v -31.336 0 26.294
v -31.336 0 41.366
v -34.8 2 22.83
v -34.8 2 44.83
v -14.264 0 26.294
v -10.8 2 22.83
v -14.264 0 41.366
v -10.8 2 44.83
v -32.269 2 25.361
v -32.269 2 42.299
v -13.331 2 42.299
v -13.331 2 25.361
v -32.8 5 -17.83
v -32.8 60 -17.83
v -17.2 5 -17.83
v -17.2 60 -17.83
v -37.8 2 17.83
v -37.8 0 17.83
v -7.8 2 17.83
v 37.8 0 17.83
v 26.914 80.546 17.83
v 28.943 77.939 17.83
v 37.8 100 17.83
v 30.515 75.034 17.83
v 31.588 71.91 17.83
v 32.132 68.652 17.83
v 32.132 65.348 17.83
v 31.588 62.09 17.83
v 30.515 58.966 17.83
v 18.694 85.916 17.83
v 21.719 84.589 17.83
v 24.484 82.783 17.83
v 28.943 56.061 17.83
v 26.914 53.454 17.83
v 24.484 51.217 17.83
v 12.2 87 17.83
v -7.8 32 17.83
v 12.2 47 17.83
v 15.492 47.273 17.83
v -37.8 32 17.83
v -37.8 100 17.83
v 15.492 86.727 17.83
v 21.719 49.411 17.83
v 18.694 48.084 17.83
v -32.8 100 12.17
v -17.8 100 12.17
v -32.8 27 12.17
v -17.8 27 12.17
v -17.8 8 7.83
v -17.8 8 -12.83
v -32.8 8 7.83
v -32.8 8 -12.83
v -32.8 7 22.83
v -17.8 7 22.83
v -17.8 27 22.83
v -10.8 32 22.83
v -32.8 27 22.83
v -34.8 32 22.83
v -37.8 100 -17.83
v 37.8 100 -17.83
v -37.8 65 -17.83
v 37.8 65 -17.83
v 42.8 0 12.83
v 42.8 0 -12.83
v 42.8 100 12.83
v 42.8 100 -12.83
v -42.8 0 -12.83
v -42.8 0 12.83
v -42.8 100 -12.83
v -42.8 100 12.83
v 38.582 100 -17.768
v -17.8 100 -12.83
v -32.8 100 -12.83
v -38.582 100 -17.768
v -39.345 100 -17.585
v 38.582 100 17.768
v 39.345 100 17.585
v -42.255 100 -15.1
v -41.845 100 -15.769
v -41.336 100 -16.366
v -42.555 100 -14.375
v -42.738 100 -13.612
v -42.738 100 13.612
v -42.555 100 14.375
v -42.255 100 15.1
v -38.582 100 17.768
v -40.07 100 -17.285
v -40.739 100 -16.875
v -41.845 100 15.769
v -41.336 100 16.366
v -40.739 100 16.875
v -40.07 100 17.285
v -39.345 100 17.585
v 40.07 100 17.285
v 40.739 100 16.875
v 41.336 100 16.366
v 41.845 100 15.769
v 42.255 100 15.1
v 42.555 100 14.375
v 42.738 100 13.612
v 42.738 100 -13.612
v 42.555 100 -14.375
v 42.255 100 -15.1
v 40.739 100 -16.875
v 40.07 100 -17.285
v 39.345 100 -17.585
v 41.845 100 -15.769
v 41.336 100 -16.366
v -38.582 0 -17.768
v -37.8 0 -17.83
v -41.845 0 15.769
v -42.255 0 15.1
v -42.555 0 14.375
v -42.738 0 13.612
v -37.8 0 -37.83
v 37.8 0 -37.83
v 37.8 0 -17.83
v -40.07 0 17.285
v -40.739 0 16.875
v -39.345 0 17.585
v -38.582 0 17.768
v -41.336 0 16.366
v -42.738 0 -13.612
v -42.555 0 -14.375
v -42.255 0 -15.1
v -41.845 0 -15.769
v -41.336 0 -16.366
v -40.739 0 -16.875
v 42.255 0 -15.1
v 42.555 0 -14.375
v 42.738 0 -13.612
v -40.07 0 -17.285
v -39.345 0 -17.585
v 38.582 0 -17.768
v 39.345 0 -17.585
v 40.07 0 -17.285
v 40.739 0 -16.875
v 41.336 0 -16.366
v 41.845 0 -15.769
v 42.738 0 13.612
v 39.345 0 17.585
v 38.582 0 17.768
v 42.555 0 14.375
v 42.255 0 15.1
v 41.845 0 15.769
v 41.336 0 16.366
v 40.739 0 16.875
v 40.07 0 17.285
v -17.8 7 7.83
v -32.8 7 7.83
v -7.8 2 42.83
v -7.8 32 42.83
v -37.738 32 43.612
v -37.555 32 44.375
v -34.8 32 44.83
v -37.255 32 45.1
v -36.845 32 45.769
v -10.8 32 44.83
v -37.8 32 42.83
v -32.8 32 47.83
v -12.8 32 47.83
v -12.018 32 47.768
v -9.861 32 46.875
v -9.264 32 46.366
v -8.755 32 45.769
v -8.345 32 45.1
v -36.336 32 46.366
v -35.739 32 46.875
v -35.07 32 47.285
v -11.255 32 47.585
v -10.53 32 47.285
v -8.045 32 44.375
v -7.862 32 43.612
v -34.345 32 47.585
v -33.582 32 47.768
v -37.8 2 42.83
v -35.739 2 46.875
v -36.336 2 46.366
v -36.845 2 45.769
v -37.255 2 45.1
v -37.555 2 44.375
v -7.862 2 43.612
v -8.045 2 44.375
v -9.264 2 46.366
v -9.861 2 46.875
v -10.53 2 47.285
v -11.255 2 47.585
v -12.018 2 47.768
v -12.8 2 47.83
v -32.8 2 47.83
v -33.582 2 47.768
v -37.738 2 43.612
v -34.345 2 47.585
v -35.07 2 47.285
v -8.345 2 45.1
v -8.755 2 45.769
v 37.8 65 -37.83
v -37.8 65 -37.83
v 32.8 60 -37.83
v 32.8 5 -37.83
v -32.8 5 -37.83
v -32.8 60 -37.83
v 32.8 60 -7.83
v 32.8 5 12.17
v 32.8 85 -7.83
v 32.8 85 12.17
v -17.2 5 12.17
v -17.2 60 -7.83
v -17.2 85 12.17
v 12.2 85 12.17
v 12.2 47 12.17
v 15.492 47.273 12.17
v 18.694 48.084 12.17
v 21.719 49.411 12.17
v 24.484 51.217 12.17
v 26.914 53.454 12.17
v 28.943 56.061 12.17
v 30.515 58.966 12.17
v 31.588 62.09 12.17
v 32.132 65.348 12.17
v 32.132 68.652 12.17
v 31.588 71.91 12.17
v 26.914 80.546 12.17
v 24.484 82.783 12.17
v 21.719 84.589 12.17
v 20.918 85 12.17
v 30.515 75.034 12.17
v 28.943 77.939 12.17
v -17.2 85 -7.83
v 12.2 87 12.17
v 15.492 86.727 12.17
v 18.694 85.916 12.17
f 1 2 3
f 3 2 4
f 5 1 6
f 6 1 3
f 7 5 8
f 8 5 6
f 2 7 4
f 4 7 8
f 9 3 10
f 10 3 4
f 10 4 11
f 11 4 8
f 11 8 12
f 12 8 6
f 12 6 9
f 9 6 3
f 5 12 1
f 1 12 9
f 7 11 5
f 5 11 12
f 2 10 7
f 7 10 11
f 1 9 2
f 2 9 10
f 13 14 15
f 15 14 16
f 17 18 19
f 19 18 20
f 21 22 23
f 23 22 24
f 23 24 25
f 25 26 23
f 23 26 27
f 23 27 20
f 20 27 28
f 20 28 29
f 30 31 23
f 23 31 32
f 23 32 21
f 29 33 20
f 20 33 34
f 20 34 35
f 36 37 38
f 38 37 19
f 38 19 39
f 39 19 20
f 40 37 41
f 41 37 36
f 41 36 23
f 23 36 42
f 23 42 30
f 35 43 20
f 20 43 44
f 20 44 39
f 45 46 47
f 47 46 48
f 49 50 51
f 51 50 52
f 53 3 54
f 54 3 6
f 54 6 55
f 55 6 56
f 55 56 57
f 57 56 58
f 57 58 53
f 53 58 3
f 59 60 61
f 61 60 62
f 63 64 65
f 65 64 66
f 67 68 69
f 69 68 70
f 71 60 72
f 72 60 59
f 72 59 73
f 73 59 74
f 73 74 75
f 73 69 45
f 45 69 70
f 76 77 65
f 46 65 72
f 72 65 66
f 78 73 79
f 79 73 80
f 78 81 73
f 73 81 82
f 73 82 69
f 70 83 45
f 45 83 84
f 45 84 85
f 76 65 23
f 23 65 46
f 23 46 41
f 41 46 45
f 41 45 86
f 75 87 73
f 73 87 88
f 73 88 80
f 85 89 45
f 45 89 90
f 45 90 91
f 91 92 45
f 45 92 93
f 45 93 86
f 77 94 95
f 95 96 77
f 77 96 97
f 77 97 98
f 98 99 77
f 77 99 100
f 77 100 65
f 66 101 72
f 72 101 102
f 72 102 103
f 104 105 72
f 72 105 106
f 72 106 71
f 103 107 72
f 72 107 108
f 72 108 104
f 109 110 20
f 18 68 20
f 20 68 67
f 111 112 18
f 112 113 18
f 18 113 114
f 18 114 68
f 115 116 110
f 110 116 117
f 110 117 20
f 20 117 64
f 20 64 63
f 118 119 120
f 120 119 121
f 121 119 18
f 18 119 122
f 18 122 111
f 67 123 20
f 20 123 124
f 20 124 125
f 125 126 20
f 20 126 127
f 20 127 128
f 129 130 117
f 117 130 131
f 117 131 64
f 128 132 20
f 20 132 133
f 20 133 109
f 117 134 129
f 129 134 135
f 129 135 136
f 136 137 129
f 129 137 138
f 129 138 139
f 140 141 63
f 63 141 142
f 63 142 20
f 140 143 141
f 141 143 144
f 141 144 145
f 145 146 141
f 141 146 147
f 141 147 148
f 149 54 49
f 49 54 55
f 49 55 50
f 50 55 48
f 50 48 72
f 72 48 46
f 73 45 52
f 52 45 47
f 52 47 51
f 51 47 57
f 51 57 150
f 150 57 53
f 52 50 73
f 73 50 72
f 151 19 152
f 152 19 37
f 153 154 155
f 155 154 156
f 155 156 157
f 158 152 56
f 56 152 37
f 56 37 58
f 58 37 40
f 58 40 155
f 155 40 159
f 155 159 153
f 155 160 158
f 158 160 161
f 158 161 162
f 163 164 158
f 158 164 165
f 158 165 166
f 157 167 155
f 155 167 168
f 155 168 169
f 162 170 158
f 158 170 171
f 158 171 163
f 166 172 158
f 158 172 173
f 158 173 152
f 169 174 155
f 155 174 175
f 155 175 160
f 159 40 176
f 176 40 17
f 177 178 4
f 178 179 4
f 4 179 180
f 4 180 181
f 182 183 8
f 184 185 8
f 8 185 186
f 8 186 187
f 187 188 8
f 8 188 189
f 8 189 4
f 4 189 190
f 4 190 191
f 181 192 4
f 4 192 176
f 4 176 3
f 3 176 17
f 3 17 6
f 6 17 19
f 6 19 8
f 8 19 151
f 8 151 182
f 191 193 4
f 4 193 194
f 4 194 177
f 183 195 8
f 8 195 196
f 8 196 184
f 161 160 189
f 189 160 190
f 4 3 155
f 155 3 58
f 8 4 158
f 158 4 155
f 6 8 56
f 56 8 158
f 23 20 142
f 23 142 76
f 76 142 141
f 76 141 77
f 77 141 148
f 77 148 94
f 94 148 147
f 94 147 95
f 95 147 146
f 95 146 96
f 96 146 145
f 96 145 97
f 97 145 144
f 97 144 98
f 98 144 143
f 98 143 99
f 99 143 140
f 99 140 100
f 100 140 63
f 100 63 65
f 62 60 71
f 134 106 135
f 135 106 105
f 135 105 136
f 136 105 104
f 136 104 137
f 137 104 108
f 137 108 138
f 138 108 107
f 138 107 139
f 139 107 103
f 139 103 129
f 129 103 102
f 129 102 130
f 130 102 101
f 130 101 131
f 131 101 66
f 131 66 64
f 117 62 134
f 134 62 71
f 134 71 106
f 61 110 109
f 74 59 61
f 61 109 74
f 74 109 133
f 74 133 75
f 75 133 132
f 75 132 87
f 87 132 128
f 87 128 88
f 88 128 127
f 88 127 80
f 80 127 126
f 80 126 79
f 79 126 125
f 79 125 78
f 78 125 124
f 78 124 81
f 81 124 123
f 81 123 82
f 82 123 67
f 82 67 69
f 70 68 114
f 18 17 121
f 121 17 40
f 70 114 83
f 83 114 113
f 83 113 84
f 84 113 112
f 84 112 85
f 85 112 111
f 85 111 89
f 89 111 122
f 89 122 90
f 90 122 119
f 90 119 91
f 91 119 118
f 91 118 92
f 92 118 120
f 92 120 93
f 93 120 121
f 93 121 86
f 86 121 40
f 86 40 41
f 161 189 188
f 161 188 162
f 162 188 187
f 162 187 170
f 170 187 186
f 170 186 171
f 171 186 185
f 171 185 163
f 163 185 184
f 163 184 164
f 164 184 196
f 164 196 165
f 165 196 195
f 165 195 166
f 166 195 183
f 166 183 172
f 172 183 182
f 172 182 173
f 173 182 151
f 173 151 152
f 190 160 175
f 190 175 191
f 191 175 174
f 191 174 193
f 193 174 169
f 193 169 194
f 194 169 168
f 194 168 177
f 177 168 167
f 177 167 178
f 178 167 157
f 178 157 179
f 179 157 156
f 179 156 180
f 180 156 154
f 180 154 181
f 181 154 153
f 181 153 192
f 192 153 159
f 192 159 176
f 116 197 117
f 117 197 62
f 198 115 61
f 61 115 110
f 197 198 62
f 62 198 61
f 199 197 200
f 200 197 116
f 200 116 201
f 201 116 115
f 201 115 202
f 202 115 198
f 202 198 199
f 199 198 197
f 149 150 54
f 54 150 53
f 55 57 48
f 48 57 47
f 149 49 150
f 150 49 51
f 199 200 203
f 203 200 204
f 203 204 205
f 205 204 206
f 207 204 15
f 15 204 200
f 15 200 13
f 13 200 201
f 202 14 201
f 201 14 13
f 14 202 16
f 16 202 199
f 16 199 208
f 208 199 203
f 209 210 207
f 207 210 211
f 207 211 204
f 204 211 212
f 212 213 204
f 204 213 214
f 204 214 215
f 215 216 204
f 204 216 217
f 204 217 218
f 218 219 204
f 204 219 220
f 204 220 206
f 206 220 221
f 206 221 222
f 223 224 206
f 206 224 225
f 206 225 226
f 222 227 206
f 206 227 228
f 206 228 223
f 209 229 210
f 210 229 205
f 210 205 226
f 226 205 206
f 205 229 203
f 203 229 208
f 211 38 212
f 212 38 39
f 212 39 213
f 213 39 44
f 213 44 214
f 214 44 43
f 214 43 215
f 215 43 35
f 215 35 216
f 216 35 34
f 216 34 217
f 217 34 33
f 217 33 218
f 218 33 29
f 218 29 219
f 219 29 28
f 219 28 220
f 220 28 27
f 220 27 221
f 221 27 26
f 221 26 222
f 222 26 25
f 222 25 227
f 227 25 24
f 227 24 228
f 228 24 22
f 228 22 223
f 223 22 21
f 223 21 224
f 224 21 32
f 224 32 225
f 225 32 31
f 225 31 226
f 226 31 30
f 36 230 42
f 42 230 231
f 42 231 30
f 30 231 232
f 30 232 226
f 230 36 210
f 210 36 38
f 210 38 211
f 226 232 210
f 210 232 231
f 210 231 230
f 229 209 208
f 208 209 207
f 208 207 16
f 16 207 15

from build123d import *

# Parameters (mm, degrees)
CROQUIS1_W                 = 85.6
CROQUIS1_H                 = 35.66
SALIENTE_EXTRUIR1_DEPTH    = 100
CROQUIS2_W                 = 15
CROQUIS2_H                 = 25
CORTAR_EXTRUIR1_DEPTH      = 92
CROQUIS3_W                 = 30
CROQUIS3_H                 = 30
SALIENTE_EXTRUIR2_DEPTH    = 30
CROQUIS4_W                 = 24
CROQUIS4_H                 = 22
CORTAR_EXTRUIR2_DEPTH      = 30
REDONDEO1_R                = 5
CROQUIS8_W                 = 75.6
CROQUIS8_H                 = 65
SALIENTE_EXTRUIR3_DEPTH    = 20
CORTAR_EXTRUIR3_DEPTH      = 10
CORTAR_EXTRUIR3_DEPTH_BACK = 10
CROQUIS6_W                 = 15
CROQUIS6_H                 = 20
CROQUIS9_W                 = 24
CROQUIS9_H                 = 22
SALIENTE_EXTRUIR4_DEPTH    = 2
SALIENTE_EXTRUIR4_TAPER    = 60
CROQUIS10_W                = 17.07179677
CROQUIS10_H                = 15.07179677
CORTAR_EXTRUIR4_DEPTH      = 2
CORTAR_EXTRUIR4_DRAFT      = 25
CROQUIS12_W                = 65.6
CROQUIS12_H                = 55
CORTAR_EXTRUIR6_DEPTH      = 20
CROQUIS17_W                = 30
CROQUIS17_H                = 55
CORTAR_EXTRUIR11_DEPTH     = 30
CORTAR_EXTRUIR18_DEPTH     = 20
CORTAR_EXTRUIR19_DEPTH     = 5.66
CORTAR_EXTRUIR20_DEPTH     = 20


with BuildPart() as part:
    # Croquis1 → Saliente-Extruir1 (new body)
    with BuildSketch(Plane(origin=(0, 0, 0), x_dir=(1, 0, 0), z_dir=(0, 1, 0))):
        Rectangle(CROQUIS1_W, CROQUIS1_H)
    extrude(amount=SALIENTE_EXTRUIR1_DEPTH)

    # Croquis2 → Cortar-Extruir1 (cut)
    with BuildSketch(Plane(origin=(0, 100, 0), x_dir=(1, 0, 0), z_dir=(0, 1, 0))):
        with Locations((-25.3, 0.33)):
            Rectangle(CROQUIS2_W, CROQUIS2_H)
    extrude(amount=-CORTAR_EXTRUIR1_DEPTH, mode=Mode.SUBTRACT)

    # Croquis3 → Saliente-Extruir2 (add)
    with BuildSketch(Plane.XY.offset(17.83)):
        with Locations((-22.8, 17)):
            Rectangle(CROQUIS3_W, CROQUIS3_H)
    extrude(amount=SALIENTE_EXTRUIR2_DEPTH)

    # Croquis4 → Cortar-Extruir2 (cut)
    with BuildSketch(Plane.XZ.offset(-2)):
        with Locations((-22.8, 33.83)):
            Rectangle(CROQUIS4_W, CROQUIS4_H)
    extrude(amount=-CORTAR_EXTRUIR2_DEPTH, mode=Mode.SUBTRACT)

    # Redondeo1
    redondeo1_edges = [part.edges().sort_by_distance(p)[0] for p in [
        (-7.8, 17, 47.83),
        (-37.8, 17, 47.83),
        (42.8, 50, 17.83),
        (-42.8, 50, 17.83),
        (-42.8, 50, -17.83),
        (42.8, 50, -17.83),
    ]]
    fillet(redondeo1_edges, radius=REDONDEO1_R - 0.0001)  # a hair under: the kernel refuses the full size

    # Croquis8 → Saliente-Extruir3 (add)
    with BuildSketch(Plane(origin=(0, 0, -17.83), x_dir=(-1, 0, 0), z_dir=(0, 0, -1))):
        with Locations((0, 32.5)):
            Rectangle(CROQUIS8_W, CROQUIS8_H)
    extrude(amount=SALIENTE_EXTRUIR3_DEPTH)

    # Croquis6 → Cortar-Extruir3 (cut, two sides: drawn at the far end of the back side and taken through both)
    with BuildSketch(Plane.XY.offset(17.83).offset(-CORTAR_EXTRUIR3_DEPTH_BACK)):
        with Locations((-25.3, 17)):
            Rectangle(CROQUIS6_W, CROQUIS6_H)
    extrude(amount=CORTAR_EXTRUIR3_DEPTH + CORTAR_EXTRUIR3_DEPTH_BACK, mode=Mode.SUBTRACT)

    # Croquis12 → Cortar-Extruir6 (cut)
    with BuildSketch(Plane(origin=(0, 0, -37.83), x_dir=(-1, 0, 0), z_dir=(0, 0, -1))):
        with Locations((0, 32.5)):
            Rectangle(CROQUIS12_W, CROQUIS12_H)
    extrude(amount=-CORTAR_EXTRUIR6_DEPTH, mode=Mode.SUBTRACT)

    # Croquis17 → Cortar-Extruir11 (cut)
    with BuildSketch(Plane(origin=(0, 0, -17.83), x_dir=(-1, 0, 0), z_dir=(0, 0, -1))):
        with Locations((-17.8, 32.5)):
            Rectangle(CROQUIS17_W, CROQUIS17_H)
    extrude(amount=-CORTAR_EXTRUIR11_DEPTH, mode=Mode.SUBTRACT)

    # Croquis19 → Cortar-Extruir18 (cut)
    with BuildSketch(Plane(origin=(0, 0, 12.17), x_dir=(-1, 0, 0), z_dir=(0, 0, -1))):
        with BuildLine():
            Line((-32.8, 60), (-22.164916731, 60))
            ThreePointArc((-22.164916731, 60), (-18.611388301, 77.247448714), (-2.8, 85))
            Line((-2.8, 85), (-32.8, 85))
            Line((-32.8, 85), (-32.8, 60))
        make_face()
        with BuildLine():
            ThreePointArc((-22.164916731, 60), (-15.047448714, 49.188611699), (-2.8, 45))
            Line((-2.8, 45), (-2.8, 60))
            Line((-2.8, 60), (-22.164916731, 60))
        make_face()
        with BuildLine():
            Line((-22.164916731, 60), (-2.8, 60))
            Line((-2.8, 60), (-2.8, 85))
            ThreePointArc((-2.8, 85), (-18.611388301, 77.247448714), (-22.164916731, 60))
        make_face()
    extrude(amount=CORTAR_EXTRUIR18_DEPTH, mode=Mode.SUBTRACT)

    # Croquis20 → Cortar-Extruir19 (cut)
    with BuildSketch(Plane.XY.offset(17.83)):
        with BuildLine():
            ThreePointArc((12.2, 87), (32.2, 67), (12.2, 47))
            Line((12.2, 47), (12.2, 87))
        make_face()
    extrude(amount=-CORTAR_EXTRUIR19_DEPTH, mode=Mode.SUBTRACT)

    # Croquis21 → Cortar-Extruir20 (cut)
    with BuildSketch(Plane(origin=(2.8, 0, 0), x_dir=(0, 0, -1), z_dir=(1, 0, 0))):
        Polygon((17.83, 5), (17.83, 60), (7.83, 60), (7.83, 85), (-12.17, 85), (-12.17, 5), align=None)
    extrude(amount=-CORTAR_EXTRUIR20_DEPTH, mode=Mode.SUBTRACT)


with BuildPart() as body_2:
    # Croquis9 → Saliente-Extruir4 (new body)
    with BuildSketch(Plane.XZ.offset(-2)):
        with Locations((-22.8, 33.83)):
            Rectangle(CROQUIS9_W, CROQUIS9_H)
    extrude(amount=SALIENTE_EXTRUIR4_DEPTH, taper=SALIENTE_EXTRUIR4_TAPER)


with BuildPart() as cortar_extruir4_tool:
    # Croquis10 → Cortar-Extruir4 (with draft: the straight prism first)
    with BuildSketch(Plane.XZ):
        with Locations((-22.8, 33.83)):
            Rectangle(CROQUIS10_W, CROQUIS10_H)
    extrude(amount=-CORTAR_EXTRUIR4_DEPTH)
    # Cortar-Extruir4: the draft: its side faces are tilted about the plane it starts from
    cortar_extruir4_sides = [cortar_extruir4_tool.faces().sort_by_distance(p)[0] for p in [
        (-22.8, 1, 26.294101615),
        (-14.264101615, 1, 33.83),
        (-22.8, 1, 41.365898385),
        (-31.335898385, 1, 33.83),
    ]]
    draft(cortar_extruir4_sides, Plane.XZ, CORTAR_EXTRUIR4_DRAFT)


with BuildPart() as body_2_1:
    add(body_2.part)

    # Cortar-Extruir4: cut by cortar_extruir4_tool
    add(cortar_extruir4_tool.part, mode=Mode.SUBTRACT)


solid = Compound([part.part, body_2_1.part])
